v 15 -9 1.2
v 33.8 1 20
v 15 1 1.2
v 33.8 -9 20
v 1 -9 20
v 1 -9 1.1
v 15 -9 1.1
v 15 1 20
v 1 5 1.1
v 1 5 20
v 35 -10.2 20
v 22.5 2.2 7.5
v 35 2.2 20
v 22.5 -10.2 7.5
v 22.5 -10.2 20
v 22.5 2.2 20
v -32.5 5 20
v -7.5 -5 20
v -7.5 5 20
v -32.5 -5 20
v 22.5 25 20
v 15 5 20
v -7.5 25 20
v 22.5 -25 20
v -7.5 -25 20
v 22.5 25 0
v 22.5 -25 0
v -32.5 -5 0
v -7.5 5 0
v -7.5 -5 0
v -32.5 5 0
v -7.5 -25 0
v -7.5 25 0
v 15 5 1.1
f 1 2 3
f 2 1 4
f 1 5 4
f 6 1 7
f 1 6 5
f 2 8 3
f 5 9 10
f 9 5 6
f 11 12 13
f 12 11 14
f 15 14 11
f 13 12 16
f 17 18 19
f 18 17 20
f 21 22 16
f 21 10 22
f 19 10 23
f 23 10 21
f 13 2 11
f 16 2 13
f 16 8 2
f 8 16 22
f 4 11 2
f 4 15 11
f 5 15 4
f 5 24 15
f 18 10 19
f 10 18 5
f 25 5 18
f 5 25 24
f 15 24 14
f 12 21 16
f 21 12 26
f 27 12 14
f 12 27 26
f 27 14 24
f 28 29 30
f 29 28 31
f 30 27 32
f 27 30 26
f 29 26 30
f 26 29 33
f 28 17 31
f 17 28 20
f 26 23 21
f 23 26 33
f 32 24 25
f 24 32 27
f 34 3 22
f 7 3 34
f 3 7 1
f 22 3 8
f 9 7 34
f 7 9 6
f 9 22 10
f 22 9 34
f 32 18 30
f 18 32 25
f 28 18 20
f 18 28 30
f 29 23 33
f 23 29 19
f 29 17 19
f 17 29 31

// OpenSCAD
difference() {
    union() {
        translate([-5,0,10]) cube([55,50,20], center=true);
        intersection() {
            translate([15,-10.2,0]) rotate([0,-45,0]) linear_extrude(30) polygon(points=[[0,0],[40,0],[40,12.4],[0,12.4]]);
            translate([0,0,10]) cube([100,95,20], center=true);

        }
    }
    translate([8,-2,10.6]) cube([14,14,19], center = true);
    intersection() {
        translate([15,-9,1.2]) rotate([0,-45,0]) linear_extrude(30) polygon(points=[[0,0],[40,0],[40,10],[0,10]]);
        translate([28,-3,10.6]) cube([54,14,19], center = true);
    }
    translate([-25,-15,10]) cube([35,20,20], center=true);
    translate([-25,+15,10]) cube([35,20,20], center=true);

}
//translate([0,0,1]) cube([50,45,2], center=true);
